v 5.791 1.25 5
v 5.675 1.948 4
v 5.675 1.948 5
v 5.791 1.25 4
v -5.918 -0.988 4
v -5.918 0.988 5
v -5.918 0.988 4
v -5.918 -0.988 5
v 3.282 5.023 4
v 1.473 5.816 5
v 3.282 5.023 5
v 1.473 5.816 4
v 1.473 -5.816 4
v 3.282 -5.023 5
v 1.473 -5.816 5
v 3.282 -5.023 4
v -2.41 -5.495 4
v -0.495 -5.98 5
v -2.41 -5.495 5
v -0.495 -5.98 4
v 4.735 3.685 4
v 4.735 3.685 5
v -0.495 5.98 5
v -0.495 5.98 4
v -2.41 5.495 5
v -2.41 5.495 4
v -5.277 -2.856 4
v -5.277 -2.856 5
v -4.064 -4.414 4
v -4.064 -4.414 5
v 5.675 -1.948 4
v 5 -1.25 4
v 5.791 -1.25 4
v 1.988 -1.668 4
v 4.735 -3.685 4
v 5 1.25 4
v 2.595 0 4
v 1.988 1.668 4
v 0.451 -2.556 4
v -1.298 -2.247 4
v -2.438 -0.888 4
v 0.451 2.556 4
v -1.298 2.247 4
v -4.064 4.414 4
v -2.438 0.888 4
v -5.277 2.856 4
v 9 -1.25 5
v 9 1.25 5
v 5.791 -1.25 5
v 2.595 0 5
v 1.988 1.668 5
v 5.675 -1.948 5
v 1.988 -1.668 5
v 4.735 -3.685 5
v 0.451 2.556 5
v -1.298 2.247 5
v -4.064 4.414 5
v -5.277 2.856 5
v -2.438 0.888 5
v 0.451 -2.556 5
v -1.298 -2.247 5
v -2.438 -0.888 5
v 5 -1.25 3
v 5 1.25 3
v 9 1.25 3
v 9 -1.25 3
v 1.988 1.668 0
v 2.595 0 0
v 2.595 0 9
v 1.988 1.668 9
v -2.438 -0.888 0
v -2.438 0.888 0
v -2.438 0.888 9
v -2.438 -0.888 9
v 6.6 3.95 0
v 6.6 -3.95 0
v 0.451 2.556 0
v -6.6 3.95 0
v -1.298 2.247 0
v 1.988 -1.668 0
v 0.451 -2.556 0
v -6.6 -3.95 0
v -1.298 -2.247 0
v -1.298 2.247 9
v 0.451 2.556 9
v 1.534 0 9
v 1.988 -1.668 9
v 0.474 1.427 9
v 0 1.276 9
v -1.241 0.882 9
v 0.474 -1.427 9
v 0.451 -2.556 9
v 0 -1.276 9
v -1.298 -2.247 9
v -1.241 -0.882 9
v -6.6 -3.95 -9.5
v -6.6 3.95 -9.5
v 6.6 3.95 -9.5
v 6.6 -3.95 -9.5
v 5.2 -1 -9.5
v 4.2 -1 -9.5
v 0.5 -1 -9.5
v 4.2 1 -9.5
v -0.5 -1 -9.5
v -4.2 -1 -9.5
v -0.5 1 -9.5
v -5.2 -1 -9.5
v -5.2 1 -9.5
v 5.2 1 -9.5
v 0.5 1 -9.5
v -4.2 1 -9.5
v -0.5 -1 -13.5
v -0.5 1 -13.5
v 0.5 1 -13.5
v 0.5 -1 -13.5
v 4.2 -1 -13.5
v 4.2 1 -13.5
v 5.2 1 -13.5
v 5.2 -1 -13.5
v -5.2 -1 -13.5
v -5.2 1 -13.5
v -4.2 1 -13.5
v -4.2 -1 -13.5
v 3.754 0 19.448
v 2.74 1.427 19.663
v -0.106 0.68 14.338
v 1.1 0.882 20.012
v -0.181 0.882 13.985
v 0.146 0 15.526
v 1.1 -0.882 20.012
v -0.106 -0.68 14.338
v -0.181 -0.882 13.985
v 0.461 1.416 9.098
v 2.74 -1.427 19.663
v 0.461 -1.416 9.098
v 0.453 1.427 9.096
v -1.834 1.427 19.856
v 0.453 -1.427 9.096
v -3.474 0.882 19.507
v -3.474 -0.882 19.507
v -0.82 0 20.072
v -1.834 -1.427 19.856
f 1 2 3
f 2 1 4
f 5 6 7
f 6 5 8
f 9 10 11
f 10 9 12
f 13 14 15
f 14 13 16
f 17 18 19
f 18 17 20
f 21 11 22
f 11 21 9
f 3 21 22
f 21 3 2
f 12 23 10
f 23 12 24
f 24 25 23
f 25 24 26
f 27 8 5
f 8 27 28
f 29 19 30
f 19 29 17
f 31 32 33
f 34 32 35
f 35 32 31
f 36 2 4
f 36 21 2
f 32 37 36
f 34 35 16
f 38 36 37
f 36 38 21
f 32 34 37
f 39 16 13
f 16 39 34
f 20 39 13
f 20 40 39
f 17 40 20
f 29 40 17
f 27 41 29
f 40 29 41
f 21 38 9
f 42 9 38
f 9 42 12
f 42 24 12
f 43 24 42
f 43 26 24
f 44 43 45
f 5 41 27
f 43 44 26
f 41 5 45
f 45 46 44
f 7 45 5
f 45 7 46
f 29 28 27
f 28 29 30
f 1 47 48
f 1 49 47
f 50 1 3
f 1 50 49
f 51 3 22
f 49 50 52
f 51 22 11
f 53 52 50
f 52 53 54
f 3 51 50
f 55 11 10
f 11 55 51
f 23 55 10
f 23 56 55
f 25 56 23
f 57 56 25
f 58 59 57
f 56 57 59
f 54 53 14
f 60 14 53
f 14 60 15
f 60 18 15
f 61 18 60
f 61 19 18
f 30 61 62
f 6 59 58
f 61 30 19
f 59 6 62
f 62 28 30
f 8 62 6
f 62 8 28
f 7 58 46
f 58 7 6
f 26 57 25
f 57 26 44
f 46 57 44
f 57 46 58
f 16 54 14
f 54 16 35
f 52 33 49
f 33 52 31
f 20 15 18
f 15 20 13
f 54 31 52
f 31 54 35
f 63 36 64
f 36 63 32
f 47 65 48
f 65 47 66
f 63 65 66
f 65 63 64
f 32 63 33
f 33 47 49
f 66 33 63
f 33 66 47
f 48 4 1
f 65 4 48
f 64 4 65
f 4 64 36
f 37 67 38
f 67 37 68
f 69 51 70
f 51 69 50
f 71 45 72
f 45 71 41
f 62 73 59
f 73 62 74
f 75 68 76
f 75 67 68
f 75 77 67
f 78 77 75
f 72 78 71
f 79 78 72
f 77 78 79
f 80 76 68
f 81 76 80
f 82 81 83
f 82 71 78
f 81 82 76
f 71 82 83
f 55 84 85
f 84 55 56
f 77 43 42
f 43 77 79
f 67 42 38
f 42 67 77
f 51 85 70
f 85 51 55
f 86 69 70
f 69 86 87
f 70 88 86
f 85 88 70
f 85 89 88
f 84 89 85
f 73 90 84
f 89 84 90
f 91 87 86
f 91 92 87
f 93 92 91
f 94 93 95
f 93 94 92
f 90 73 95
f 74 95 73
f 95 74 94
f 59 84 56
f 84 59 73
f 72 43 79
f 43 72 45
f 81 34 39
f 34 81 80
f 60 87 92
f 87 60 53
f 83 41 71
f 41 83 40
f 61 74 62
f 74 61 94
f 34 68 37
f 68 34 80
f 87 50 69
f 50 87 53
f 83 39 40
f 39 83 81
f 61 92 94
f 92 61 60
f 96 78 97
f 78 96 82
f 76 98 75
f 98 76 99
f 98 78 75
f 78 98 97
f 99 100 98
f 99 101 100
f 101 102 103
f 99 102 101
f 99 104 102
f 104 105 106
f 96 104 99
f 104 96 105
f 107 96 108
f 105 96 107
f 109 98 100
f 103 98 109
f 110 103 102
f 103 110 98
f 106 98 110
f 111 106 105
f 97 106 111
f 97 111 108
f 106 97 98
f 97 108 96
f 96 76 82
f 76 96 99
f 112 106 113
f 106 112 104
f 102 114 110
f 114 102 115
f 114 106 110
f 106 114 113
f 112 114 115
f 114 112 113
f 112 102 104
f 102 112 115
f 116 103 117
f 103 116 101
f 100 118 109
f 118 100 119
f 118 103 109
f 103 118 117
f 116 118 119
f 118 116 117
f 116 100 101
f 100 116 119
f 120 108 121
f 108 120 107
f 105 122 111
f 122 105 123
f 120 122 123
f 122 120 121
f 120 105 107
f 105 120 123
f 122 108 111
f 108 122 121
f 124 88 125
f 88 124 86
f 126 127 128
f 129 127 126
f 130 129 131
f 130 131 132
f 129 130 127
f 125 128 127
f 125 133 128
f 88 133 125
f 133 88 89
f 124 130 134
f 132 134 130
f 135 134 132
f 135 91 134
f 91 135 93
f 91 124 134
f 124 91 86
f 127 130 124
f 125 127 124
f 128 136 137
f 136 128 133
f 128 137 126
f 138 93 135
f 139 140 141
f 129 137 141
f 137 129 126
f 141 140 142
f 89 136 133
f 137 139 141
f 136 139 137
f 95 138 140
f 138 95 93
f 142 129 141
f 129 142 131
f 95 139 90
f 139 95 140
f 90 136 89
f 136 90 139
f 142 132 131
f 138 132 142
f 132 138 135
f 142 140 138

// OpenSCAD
tolerance = 0;

module switch() {
    cylinder(h=9,d=5.19+2*tolerance);
    translate([0,0,9-5]) {
        cylinder(h=1+tolerance,d=12+tolerance);
        translate([10/2, -2.5/2-tolerance, -1]) cube([4,2.5+2*tolerance,2+tolerance]);
    };
    translate([-13.2/2-tolerance,-7.9/2-tolerance,-9.5-2*tolerance]) cube([13.2+2*tolerance,7.9+2*tolerance,9.5+2*tolerance]);
    
    translate([-1/2,-2/2,-4-9.5-2*tolerance]) cube([1, 2, 4]);
    translate([-1/2+4.7,-2/2,-4-9.5-2*tolerance]) cube([1, 2, 4]);
    translate([-1/2-4.7,-2/2,-4-9.5-2*tolerance]) cube([1, 2, 4]);
    
    //translate([0,0,9]) cylinder(d=3, h=11);
    translate([0,0,9]) rotate([0,12,0]) cylinder(d=3, h=11);
    translate([0,0,9]) rotate([0,-12,0]) cylinder(d=3, h=11);
}

switch();
